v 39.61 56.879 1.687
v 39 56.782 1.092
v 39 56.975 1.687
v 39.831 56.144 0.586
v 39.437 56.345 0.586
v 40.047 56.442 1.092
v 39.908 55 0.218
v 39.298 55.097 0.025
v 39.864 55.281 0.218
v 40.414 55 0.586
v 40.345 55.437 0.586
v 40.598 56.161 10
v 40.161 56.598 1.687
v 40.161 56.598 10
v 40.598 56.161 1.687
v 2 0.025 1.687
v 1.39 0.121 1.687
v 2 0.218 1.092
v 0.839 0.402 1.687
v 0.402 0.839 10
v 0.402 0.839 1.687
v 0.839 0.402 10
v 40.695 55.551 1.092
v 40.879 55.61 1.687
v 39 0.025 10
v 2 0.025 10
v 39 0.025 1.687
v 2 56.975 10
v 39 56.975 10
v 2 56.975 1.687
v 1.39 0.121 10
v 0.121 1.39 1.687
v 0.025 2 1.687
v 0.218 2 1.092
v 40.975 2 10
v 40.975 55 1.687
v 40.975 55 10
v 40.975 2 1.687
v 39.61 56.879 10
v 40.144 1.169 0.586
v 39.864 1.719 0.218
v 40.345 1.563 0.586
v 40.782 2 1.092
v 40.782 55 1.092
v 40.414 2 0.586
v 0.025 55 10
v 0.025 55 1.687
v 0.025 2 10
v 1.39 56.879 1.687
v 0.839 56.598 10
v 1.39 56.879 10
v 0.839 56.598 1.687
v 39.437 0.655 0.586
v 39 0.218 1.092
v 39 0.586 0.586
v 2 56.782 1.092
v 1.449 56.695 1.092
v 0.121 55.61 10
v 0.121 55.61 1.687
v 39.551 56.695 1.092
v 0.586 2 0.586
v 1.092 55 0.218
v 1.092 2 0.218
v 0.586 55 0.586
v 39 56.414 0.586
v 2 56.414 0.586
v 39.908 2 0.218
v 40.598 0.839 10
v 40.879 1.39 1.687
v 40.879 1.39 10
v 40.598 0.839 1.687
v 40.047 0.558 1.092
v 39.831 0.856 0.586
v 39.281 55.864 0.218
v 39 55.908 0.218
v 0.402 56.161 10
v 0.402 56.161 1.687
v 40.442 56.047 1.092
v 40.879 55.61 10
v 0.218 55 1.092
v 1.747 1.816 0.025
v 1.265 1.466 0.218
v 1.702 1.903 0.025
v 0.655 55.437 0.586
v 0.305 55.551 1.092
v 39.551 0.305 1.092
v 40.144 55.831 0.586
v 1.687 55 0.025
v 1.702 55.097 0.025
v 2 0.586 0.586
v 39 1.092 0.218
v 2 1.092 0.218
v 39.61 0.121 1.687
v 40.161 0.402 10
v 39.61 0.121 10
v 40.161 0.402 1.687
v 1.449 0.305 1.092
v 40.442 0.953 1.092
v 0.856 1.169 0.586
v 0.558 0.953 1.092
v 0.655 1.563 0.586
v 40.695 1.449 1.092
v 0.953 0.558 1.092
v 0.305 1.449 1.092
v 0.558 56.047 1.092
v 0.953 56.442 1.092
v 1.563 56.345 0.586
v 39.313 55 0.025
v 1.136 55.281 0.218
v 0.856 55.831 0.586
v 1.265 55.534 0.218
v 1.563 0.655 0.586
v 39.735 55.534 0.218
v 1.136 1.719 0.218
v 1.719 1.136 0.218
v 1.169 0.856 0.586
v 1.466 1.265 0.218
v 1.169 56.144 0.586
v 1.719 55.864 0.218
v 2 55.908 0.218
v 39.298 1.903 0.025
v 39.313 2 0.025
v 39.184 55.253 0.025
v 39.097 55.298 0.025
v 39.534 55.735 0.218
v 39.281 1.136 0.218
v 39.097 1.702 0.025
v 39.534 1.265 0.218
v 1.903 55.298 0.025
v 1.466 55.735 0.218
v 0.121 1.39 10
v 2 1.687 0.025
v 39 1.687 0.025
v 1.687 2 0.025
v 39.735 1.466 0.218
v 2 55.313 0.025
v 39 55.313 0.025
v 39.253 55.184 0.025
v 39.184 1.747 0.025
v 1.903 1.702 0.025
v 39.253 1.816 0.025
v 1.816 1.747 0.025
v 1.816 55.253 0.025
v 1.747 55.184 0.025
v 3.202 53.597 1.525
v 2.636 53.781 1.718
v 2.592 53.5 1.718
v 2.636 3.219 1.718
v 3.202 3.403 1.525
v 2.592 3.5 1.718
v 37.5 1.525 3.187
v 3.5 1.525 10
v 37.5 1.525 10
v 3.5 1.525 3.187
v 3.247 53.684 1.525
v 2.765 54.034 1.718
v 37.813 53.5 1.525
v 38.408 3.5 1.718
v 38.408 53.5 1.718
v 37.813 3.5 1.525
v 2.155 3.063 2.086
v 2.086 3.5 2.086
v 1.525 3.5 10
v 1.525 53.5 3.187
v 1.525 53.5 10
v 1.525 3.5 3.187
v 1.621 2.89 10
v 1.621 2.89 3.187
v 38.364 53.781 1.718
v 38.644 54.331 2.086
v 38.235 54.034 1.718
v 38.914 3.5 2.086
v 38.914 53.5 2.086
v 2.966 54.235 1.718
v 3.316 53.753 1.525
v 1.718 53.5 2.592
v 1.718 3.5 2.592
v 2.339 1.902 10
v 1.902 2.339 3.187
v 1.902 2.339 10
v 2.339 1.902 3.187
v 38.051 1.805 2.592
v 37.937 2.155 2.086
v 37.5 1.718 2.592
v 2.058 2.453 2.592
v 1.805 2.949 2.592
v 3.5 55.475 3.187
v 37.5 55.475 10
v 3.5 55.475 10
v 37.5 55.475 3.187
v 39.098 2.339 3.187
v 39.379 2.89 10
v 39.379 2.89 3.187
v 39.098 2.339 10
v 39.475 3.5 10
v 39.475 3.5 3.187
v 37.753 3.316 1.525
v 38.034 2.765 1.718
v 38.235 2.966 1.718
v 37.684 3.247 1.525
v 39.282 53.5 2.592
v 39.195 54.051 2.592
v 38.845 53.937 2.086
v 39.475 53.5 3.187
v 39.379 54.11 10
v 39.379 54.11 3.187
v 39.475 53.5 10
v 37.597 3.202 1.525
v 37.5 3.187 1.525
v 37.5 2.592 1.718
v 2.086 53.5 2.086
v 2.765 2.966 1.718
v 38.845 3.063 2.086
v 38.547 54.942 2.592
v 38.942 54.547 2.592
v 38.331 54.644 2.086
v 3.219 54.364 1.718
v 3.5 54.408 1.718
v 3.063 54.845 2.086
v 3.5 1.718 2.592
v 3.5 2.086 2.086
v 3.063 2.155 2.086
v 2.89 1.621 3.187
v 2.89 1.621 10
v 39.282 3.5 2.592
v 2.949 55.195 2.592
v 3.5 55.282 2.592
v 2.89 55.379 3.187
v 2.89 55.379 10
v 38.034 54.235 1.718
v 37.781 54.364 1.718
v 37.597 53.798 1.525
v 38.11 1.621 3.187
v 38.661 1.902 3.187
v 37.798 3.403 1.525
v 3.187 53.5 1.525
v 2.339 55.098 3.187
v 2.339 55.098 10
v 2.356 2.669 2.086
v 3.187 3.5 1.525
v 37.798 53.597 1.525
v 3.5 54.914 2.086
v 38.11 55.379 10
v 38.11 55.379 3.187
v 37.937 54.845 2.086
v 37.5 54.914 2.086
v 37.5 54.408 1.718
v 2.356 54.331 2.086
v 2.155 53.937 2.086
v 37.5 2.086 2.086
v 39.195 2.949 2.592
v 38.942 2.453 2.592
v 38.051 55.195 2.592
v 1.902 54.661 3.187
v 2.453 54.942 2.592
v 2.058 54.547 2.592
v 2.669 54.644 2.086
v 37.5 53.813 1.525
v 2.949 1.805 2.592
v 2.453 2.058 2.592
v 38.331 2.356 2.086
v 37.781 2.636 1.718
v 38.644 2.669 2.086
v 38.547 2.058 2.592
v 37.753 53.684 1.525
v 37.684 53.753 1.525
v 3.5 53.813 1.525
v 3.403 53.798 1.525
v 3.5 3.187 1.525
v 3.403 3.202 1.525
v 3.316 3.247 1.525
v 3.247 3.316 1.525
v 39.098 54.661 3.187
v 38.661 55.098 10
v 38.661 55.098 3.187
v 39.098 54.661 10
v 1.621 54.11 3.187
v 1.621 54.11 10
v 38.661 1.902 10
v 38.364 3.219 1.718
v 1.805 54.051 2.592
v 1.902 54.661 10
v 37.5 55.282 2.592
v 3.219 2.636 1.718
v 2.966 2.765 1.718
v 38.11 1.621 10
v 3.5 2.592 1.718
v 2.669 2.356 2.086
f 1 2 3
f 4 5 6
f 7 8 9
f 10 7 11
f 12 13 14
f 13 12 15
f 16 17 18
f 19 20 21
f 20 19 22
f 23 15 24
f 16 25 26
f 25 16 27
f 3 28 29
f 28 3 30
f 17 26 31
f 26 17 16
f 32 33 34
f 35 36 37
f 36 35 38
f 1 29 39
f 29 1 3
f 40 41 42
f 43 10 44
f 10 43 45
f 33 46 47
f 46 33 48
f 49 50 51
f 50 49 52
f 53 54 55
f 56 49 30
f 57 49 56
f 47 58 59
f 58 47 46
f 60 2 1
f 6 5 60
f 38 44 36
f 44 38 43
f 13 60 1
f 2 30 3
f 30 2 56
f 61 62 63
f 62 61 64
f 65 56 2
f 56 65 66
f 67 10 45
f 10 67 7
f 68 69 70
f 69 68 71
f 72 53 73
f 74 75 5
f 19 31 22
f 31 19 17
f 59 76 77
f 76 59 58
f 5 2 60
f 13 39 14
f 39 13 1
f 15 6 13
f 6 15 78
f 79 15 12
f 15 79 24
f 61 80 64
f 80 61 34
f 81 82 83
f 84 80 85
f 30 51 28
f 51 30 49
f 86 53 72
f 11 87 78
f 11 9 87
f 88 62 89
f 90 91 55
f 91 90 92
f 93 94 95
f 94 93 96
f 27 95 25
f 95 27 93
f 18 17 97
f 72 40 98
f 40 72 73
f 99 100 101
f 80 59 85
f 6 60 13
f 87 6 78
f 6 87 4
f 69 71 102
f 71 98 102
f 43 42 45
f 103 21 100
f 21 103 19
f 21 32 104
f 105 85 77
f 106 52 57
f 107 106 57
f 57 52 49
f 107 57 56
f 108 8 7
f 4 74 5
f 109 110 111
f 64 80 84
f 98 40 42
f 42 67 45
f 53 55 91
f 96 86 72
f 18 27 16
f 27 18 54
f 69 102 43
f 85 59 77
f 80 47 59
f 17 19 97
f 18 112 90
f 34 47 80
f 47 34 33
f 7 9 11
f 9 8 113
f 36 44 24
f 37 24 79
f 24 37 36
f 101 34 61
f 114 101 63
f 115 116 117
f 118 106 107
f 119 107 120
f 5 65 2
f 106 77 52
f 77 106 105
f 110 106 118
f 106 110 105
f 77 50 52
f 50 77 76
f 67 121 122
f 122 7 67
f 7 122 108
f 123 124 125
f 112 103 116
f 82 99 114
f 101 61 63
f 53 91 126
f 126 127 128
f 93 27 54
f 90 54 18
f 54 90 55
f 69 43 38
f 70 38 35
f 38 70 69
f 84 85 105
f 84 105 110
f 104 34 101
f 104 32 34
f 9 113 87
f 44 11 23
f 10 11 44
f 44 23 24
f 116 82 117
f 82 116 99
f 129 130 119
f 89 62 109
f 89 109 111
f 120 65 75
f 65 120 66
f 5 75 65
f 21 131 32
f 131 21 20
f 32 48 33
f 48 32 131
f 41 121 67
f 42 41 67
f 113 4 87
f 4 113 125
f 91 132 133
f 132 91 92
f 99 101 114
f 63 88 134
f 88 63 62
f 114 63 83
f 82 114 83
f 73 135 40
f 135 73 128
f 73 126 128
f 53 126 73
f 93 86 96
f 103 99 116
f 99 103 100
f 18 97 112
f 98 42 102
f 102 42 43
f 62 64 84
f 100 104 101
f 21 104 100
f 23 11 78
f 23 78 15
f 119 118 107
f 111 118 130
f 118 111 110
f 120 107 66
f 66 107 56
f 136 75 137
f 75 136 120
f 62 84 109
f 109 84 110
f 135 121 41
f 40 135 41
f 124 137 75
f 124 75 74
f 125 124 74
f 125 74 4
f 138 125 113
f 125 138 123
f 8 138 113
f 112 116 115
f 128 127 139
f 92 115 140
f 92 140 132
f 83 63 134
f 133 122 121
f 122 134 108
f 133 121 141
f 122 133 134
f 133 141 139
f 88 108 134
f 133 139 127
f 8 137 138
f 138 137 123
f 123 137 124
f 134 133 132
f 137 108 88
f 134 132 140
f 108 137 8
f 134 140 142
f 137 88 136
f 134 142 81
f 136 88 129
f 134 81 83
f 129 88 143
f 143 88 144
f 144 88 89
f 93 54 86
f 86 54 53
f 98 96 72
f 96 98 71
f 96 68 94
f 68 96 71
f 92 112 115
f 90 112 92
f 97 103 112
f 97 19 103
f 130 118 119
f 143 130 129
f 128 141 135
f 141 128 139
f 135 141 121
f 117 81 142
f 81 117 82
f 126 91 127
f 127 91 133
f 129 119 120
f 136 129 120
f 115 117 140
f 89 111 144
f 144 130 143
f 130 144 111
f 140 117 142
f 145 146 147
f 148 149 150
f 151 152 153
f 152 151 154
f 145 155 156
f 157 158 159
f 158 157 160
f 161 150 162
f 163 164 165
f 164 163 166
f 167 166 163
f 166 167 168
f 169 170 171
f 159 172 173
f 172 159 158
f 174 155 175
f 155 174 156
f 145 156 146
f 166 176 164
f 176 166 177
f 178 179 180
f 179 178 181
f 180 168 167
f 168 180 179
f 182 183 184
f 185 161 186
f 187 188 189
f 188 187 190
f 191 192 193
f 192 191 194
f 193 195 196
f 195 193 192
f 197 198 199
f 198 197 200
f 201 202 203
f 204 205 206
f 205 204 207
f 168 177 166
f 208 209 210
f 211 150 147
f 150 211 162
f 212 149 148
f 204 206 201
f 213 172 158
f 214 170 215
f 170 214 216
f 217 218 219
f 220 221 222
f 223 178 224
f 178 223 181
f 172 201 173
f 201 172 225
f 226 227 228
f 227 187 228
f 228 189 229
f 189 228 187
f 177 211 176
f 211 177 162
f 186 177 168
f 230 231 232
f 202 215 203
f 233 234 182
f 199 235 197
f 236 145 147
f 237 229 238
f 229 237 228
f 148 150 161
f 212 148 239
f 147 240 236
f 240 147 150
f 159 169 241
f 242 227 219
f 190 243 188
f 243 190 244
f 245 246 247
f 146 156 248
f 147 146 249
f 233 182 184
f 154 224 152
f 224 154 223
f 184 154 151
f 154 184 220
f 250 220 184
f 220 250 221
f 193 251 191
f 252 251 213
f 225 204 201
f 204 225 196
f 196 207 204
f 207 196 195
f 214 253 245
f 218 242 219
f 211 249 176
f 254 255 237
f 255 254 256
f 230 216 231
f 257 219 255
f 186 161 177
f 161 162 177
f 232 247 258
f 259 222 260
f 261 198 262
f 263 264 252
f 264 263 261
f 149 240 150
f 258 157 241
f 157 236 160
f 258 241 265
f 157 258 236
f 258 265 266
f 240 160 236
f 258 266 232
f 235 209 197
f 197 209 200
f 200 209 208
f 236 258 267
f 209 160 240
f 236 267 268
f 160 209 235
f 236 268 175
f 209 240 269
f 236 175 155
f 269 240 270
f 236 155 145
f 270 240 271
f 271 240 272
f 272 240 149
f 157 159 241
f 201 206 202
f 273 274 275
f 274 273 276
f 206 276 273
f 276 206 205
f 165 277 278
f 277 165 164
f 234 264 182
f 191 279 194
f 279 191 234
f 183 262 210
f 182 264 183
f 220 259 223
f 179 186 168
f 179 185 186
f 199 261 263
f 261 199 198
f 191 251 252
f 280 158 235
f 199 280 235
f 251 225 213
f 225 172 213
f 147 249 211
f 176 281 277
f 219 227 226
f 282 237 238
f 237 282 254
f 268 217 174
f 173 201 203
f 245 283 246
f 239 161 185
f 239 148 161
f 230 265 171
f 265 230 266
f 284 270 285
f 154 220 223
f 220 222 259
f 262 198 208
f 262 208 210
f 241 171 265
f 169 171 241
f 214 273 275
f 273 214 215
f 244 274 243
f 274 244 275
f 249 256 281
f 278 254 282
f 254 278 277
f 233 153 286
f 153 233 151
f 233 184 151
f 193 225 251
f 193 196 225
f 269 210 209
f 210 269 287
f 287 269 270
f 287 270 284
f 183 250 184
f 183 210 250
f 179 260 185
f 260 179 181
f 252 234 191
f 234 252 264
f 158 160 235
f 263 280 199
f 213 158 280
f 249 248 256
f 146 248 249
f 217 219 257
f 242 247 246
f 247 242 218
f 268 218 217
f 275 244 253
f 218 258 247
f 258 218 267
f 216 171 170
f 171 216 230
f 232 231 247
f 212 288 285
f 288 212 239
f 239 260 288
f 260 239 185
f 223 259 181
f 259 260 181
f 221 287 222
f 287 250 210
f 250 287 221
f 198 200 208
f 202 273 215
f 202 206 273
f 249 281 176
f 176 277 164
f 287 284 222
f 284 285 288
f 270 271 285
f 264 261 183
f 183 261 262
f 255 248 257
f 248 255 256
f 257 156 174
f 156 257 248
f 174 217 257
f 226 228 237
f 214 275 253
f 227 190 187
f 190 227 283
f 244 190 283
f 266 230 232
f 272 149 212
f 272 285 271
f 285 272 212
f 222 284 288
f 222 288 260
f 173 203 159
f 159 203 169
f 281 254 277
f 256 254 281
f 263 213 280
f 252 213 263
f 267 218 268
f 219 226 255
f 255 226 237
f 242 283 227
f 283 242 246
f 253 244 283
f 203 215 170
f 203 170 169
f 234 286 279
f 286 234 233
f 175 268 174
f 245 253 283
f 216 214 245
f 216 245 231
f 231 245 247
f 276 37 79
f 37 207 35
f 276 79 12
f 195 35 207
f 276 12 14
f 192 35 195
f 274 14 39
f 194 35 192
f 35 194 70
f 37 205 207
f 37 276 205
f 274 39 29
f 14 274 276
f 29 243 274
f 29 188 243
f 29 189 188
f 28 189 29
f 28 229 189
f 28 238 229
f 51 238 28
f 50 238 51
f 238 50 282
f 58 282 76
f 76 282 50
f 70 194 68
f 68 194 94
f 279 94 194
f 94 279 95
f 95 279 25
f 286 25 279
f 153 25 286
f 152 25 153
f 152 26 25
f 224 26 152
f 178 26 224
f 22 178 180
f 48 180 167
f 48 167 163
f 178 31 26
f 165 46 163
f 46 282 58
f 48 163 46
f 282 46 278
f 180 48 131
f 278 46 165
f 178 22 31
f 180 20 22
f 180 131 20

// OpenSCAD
/*bw = 64;
bl = 100;
bh = 12;
*/
bw = 34;
bl = 50;
bh = 12;


bxh = 30;
bxw = 70;
bxl = 100;

cr = 2;

$fn = 20;
/*
minkowski() {
    translate([cr,cr,cr]) sphere(r = cr);
    translate([cr,cr,cr]) cube([bw,bl,bh]);
}
*/

difference() {
difference() {
    minkowski() {
        translate([cr,cr,cr]) sphere(r = cr);
        cube([bw+3,bl+3,bh]);
    }

    #translate([1.5,1.5, 1.5]) minkowski() {
        translate([cr,cr,cr]) sphere(r = cr);
        cube([bw,bl,bh]);
    }
}

#translate([-cr,-cr,10]) cube([bw+10,bl+10,10]);

}
